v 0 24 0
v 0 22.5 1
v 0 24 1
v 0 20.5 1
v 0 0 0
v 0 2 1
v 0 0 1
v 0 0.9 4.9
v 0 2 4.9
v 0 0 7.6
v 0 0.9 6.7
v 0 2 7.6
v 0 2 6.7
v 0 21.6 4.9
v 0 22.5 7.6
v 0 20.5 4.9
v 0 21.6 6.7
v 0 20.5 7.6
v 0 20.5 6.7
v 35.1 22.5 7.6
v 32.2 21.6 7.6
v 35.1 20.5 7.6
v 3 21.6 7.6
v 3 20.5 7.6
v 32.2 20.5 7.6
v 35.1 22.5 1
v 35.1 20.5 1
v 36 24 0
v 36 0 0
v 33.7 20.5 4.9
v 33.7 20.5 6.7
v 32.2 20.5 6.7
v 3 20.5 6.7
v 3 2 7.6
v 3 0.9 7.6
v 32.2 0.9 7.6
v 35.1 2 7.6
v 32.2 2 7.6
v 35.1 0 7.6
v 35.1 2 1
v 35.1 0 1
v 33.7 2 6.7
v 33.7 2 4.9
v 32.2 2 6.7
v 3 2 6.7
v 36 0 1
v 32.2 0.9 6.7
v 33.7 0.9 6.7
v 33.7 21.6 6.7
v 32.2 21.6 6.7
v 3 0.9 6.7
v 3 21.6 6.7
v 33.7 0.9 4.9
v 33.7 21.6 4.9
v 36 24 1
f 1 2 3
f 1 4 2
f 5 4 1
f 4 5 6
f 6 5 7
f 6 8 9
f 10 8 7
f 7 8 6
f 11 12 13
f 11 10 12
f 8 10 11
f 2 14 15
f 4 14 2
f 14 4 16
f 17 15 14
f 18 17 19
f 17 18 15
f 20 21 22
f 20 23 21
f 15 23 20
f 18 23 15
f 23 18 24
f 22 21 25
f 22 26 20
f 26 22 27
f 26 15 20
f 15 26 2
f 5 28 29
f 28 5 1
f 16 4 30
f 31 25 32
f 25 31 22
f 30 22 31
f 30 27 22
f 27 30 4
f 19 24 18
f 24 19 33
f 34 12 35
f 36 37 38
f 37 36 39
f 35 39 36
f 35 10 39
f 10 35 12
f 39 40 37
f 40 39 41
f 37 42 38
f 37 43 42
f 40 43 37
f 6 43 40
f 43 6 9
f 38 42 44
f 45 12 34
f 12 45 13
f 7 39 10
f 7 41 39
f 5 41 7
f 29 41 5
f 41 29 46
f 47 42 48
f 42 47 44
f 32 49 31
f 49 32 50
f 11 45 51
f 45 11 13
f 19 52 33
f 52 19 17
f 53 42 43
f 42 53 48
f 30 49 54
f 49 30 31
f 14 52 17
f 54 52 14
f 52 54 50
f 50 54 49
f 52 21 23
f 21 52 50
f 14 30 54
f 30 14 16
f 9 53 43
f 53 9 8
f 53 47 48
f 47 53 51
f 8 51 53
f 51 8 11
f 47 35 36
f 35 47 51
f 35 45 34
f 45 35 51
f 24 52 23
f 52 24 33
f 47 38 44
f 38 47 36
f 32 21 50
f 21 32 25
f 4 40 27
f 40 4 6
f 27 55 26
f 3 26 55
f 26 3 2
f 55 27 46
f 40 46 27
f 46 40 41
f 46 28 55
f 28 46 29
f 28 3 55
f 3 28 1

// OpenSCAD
// file: OpenSCAD_Arduino_Lib/hx711.scad
// hx711.scad - HX711 Mount in OpenSCAD
$fn=100;

Height = 5;     // Bottom of PCB
Slop = 0.1;     // Fitment slop

// PCB parameters
L = 33.6;       // PCB Length
W = 20.5;       // PCB Width
T = 1.6;        // PCB Thickness
Hole = 3;       // Hole size
Offset1 = 4.4;  // Hole offset from edge
Offset2 = 2.4;  // Hole offset from edge

// Mount parameters
Mnt_Lip = 3;
Mnt_H = Height + T + 1;
Mnt_L = L + Mnt_Lip/2;
Mnt_W = W;
Mnt_T = 2; 

//hx711();
//hx711_mount();

module hx711() {
    
    translate([0, Mnt_T/2, 0]) {
        difference() {
            // PCB
            translate([0, 0, Height])
                %cube([L, W, T]);

            // Holes
            translate([L-Offset1, W-Offset2, Height+T/2])
                %cylinder(h = 2*T, d = Hole, center = true);
            translate([L-Offset1, Offset2, Height+T/2])
                %cylinder(h = 2*T, d = Hole, center = true);
        }
    }
}

module hx711_mount() {
    difference() {
        union() {
        // Create 1st side
        translate([0, Mnt_W, 0])
            cube([Mnt_L, Mnt_T, Mnt_H]);
        // Create 2nd side    
        translate([0, 0, 0])
            cube([Mnt_L, Mnt_T, Mnt_H]);
        }
        
        // Remove PCB slot
        translate([-Slop, Mnt_T/2-Slop, Height-Slop])
            cube([L+2*Slop, W+2*Slop, T+2*Slop]);
        
        // Remove section above PCB
        translate([Mnt_Lip, Mnt_T/2-Slop, Height])
            cube([Mnt_L-2*Mnt_Lip+Slop, W+2*Slop, 3*T]);;
        
        // Remove any overhang
        translate([-10, -1, -1])
            cube([10, Mnt_W+Mnt_T+2, Mnt_H+2]);
        
    }
}
// main file
$fn=100;

include <OpenSCAD_Arduino_Lib/hx711.scad>

cube([36, 24, 1]);

hx711();
hx711_mount();
